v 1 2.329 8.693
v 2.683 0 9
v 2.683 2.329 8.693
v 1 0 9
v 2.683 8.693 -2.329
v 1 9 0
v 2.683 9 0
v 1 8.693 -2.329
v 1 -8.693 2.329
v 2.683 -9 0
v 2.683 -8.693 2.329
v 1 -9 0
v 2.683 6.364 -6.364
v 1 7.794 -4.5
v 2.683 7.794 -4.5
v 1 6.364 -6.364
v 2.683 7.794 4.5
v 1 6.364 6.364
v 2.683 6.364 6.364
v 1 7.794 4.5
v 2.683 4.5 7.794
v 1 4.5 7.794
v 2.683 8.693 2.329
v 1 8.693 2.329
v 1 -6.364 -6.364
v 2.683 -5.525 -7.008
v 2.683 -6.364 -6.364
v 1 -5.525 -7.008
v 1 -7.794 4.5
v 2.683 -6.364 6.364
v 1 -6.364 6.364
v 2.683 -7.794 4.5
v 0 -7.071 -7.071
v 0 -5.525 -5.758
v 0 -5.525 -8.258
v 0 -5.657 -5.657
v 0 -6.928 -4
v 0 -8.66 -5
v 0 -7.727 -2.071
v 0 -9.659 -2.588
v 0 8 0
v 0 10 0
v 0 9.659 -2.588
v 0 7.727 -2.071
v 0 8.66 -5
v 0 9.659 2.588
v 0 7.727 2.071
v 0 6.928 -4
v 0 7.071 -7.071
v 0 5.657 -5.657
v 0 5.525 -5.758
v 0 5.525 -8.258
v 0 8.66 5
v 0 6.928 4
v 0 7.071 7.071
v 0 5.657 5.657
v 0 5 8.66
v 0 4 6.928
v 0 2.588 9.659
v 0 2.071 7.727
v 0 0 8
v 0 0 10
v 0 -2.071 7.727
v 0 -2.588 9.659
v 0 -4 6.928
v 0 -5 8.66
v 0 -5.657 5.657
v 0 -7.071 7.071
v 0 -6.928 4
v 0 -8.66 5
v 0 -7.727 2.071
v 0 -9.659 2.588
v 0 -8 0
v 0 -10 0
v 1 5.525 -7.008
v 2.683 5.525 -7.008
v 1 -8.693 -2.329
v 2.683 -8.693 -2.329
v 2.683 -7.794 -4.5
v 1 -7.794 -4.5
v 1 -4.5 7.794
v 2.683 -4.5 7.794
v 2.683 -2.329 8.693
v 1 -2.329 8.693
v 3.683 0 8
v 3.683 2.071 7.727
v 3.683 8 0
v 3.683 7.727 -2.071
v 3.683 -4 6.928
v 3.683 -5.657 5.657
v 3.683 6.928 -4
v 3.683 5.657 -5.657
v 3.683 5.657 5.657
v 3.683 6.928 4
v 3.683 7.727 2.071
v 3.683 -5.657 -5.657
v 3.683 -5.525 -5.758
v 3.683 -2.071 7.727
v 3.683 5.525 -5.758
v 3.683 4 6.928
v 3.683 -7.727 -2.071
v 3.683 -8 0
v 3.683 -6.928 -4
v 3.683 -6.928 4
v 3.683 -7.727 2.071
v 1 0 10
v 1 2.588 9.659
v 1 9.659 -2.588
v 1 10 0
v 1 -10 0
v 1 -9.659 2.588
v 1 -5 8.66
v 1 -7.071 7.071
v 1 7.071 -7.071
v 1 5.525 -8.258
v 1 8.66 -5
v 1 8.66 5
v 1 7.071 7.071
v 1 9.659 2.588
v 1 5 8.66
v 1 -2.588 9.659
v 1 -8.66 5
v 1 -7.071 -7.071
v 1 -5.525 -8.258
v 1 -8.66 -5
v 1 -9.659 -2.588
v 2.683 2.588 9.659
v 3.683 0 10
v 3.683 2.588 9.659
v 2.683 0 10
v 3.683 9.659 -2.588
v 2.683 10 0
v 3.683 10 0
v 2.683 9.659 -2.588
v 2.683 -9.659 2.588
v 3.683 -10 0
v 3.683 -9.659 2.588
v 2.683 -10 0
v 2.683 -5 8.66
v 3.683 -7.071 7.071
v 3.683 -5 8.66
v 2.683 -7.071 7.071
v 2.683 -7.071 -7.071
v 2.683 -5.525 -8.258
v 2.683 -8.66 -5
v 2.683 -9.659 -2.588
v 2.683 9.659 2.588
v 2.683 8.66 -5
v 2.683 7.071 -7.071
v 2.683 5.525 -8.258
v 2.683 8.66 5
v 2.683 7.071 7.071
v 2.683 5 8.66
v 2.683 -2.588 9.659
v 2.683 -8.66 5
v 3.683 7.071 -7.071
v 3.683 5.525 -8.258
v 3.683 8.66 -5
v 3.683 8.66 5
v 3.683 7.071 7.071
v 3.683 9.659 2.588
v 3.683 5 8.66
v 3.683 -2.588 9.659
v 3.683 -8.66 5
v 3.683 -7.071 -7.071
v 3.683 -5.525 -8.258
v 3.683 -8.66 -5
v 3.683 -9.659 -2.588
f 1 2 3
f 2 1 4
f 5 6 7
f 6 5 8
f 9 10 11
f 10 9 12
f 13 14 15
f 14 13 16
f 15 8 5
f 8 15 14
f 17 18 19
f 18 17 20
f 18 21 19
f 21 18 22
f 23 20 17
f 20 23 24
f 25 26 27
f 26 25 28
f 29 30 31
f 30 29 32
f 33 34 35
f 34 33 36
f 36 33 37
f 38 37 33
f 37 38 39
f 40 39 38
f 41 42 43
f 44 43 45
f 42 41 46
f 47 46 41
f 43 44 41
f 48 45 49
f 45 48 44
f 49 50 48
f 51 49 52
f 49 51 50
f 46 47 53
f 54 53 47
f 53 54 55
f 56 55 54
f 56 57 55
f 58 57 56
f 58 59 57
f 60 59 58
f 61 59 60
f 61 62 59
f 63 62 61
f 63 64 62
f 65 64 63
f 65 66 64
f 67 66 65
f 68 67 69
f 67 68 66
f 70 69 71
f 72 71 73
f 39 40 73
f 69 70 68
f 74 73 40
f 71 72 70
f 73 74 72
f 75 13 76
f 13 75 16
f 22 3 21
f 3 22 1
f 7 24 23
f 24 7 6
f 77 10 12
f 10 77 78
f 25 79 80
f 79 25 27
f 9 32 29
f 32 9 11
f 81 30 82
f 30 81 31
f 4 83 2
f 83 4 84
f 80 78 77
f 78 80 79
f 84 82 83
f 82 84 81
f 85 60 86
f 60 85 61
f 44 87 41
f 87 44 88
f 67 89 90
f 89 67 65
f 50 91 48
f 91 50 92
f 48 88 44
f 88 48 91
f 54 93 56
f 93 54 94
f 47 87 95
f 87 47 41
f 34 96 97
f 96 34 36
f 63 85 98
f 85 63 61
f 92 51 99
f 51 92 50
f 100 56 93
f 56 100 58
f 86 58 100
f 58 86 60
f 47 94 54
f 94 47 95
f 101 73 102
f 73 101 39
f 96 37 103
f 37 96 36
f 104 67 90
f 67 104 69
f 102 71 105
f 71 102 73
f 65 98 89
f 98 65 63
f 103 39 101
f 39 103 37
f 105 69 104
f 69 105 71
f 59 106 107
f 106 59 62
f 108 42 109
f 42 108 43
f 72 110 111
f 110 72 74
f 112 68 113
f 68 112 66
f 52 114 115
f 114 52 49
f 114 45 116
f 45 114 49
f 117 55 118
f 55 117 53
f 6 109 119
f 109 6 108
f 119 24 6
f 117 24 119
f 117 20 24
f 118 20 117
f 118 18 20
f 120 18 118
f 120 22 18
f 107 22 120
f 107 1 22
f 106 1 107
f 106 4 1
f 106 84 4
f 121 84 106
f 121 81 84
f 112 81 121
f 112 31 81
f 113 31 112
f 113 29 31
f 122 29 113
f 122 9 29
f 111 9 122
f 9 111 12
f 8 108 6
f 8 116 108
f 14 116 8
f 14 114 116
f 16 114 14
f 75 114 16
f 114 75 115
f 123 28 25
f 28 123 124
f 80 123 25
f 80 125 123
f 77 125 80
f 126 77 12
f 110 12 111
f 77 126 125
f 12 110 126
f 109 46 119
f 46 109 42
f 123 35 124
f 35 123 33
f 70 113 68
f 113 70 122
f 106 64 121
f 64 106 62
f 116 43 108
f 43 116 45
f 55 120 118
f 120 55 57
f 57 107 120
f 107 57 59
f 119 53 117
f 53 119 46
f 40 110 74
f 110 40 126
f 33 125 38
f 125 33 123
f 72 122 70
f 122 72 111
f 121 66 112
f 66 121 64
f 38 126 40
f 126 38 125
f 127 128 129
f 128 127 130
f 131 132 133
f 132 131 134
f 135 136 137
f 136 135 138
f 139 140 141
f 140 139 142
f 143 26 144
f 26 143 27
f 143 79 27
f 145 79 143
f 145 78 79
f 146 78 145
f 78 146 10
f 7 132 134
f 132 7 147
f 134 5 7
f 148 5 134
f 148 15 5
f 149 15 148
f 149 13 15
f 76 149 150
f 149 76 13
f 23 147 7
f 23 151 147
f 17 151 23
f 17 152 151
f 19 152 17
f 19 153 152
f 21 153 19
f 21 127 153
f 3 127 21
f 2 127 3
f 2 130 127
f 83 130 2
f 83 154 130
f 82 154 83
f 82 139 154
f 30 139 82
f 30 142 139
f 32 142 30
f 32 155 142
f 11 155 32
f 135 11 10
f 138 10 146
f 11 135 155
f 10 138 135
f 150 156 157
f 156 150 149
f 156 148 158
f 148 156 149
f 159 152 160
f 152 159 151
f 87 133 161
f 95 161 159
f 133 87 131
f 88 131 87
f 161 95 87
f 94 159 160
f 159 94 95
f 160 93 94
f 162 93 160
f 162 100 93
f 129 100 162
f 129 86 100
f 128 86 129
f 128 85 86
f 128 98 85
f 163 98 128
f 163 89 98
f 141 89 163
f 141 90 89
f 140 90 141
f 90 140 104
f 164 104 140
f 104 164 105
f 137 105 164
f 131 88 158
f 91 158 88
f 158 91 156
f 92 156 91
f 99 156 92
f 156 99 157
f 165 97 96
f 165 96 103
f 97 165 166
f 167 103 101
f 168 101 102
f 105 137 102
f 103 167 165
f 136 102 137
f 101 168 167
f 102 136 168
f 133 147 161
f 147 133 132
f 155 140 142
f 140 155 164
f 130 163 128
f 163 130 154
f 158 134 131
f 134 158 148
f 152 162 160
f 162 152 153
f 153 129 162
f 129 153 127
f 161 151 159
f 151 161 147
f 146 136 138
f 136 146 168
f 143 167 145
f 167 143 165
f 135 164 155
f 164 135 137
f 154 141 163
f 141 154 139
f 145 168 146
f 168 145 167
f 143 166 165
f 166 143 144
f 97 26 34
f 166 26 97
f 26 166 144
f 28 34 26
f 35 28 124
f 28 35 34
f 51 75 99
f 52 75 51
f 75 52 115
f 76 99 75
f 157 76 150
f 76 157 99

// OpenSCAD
// file: ../build_environments.scad
// build_environments.scad: modules to build level sections
//

module pool(diameter=10.0, wall_height=2.0, step_width=3.0, connections=[])
{
    difference() {
        union() {
        difference() {
            cylinder(h=0.5,r1=diameter+step_width,r2=diameter+step_width,$fn=48);
            translate([0,0,-0.1])
                cylinder(h=0.7,r1=diameter,r2=diameter,$fn=48);
        }
        difference() {
            cylinder(h=wall_height,r1=diameter+step_width+1.0,r2=diameter+step_width+1.0,$fn=48);
            translate([0,0,-0.1])
                cylinder(h=wall_height+0.2,r1=diameter+step_width,r2=diameter+step_width,$fn=48);
        }
        }
    
        for (c = connections)
        {
            rotate([0,90,0]) {
                angle = atan2(c[1],c[0]);
                rotate([-angle,0,0]) {
                    cylinder(h=diameter+5.0,r1=c[2],r2=c[2],$fn=48);
                }
            }
        }
    }
}

module straight(length=10.0, width=2.0, dy1=0.0, dy2=0.0, dz=0.0)
{
    dims = [0, 0, 0, 0, 0, (dz/length)];
    matrix = [
        [ 1, dims[0], dims[1], 0 ],
        [ dims[2], 1, dims[4], 0 ],
        [ dims[5], dims[3], 1, 0 ],
        [ 0, 0, 0, 1 ]
    ];
    multmatrix(matrix)
    difference() {
        translate([dy1,0,0])
        union() {
            rotate([0,90,0]) {
                difference() {
                    cylinder(h=(length-dy1-dy2),r1=width+1.0,r2=width+1.0,$fn=24);
                    translate([0,0,-0.1])
                        cylinder(h=(length-dy1-dy2+0.2),r1=width,r2=width,$fn=24);
                }
                difference() {
                    cylinder(h=1.0,r1=width+2.0,r2=width+2.0,$fn=24);
                    translate([0,0,-0.1])
                        cylinder(h=1.2,r1=width,r2=width,$fn=24);
                }
                translate([0,0,(length-dy1-dy2)-1.0]) {
                    difference() {
                        cylinder(h=1.0,r1=width+2.0,r2=width+2.0,$fn=24);
                        translate([0,0,-0.1])
                            cylinder(h=1.2,r1=width,r2=width,$fn=24);
                    }
                }
            }
        }
        translate([0,0,-(2*width+4.0)/2])
            cube([3*length,3*length,2*width+4.0],center=true);
    }
}

module curve(p0=[0,0], center=[0,0], dir=1, angle=0.0, width=2.0)
{
    radius = sqrt((p0[0]-center[0])*(p0[0]-center[0]) + (p0[1]-center[1])*(p0[1]-center[1]));
    if (dir == 0) {
        difference() {
            rotate([0,0,-90])
            difference() {
                rotate_extrude(angle = angle, convexity = 10, $fn=32)
                    translate([radius, 0, 0])
                        circle(r = width+1.0,$fn=24);
                rotate([0,0,-1.0])
                    rotate_extrude(angle = angle+2.0, convexity = 10, $fn=32)
                        translate([radius, 0, 0])
                            circle(r = width,$fn=24);
            }
            translate([0,0,-(2*width+4.0)/2])
                cube([5*radius,5*radius,2*width+4.0],center=true);
        }
    }
    else {
        difference() {
            rotate([0,0,90])
            difference() {
                rotate_extrude(angle = -angle, convexity = 10, $fn=32)
                    translate([radius, 0, 0])
                        circle(r = width+1.0,$fn=24);
                rotate([0,0,1.0])
                    rotate_extrude(angle = -angle-2.0, convexity = 10, $fn=32)
                        translate([radius, 0, 0])
                            circle(r = width,$fn=24);
            }
            translate([0,0,-(2*width+4.0)/2])
                cube([5*radius,5*radius,2*width+4.0],center=true);
        }
    }

}

// test pool
//pool(diameter=12.0000, wall_height=3.0000, step_width=3.0000, connections=[[0.0000,-26.0000,2.0000], [23.6074,0.0000,2.0000]]);

// test straight, slope
//straight(length=26.0000, width=2.0000, dy1=11.8322, dy2=6.7082, dz=0.0000);
//straight(length=29.1549, width=12.0000, dy1=0.0000, dy2=0.0000, dz=-15.0000);

// test curve
//curve(p0=[23.6074, 0.0000], center=[23.6074, 5.0000], dir=0, angle=60.1011, width=2.0000);
//curve(p0=[33.6426, 12.4219], center=[37.9771, 9.9295], dir=1, angle=120.4627, width=2.0000);
// main file
use <../build_environments.scad>;
straight(length=3.6832, width=8.0000, dy1=0.0000, dy2=0.0000, dz=0.0000);
